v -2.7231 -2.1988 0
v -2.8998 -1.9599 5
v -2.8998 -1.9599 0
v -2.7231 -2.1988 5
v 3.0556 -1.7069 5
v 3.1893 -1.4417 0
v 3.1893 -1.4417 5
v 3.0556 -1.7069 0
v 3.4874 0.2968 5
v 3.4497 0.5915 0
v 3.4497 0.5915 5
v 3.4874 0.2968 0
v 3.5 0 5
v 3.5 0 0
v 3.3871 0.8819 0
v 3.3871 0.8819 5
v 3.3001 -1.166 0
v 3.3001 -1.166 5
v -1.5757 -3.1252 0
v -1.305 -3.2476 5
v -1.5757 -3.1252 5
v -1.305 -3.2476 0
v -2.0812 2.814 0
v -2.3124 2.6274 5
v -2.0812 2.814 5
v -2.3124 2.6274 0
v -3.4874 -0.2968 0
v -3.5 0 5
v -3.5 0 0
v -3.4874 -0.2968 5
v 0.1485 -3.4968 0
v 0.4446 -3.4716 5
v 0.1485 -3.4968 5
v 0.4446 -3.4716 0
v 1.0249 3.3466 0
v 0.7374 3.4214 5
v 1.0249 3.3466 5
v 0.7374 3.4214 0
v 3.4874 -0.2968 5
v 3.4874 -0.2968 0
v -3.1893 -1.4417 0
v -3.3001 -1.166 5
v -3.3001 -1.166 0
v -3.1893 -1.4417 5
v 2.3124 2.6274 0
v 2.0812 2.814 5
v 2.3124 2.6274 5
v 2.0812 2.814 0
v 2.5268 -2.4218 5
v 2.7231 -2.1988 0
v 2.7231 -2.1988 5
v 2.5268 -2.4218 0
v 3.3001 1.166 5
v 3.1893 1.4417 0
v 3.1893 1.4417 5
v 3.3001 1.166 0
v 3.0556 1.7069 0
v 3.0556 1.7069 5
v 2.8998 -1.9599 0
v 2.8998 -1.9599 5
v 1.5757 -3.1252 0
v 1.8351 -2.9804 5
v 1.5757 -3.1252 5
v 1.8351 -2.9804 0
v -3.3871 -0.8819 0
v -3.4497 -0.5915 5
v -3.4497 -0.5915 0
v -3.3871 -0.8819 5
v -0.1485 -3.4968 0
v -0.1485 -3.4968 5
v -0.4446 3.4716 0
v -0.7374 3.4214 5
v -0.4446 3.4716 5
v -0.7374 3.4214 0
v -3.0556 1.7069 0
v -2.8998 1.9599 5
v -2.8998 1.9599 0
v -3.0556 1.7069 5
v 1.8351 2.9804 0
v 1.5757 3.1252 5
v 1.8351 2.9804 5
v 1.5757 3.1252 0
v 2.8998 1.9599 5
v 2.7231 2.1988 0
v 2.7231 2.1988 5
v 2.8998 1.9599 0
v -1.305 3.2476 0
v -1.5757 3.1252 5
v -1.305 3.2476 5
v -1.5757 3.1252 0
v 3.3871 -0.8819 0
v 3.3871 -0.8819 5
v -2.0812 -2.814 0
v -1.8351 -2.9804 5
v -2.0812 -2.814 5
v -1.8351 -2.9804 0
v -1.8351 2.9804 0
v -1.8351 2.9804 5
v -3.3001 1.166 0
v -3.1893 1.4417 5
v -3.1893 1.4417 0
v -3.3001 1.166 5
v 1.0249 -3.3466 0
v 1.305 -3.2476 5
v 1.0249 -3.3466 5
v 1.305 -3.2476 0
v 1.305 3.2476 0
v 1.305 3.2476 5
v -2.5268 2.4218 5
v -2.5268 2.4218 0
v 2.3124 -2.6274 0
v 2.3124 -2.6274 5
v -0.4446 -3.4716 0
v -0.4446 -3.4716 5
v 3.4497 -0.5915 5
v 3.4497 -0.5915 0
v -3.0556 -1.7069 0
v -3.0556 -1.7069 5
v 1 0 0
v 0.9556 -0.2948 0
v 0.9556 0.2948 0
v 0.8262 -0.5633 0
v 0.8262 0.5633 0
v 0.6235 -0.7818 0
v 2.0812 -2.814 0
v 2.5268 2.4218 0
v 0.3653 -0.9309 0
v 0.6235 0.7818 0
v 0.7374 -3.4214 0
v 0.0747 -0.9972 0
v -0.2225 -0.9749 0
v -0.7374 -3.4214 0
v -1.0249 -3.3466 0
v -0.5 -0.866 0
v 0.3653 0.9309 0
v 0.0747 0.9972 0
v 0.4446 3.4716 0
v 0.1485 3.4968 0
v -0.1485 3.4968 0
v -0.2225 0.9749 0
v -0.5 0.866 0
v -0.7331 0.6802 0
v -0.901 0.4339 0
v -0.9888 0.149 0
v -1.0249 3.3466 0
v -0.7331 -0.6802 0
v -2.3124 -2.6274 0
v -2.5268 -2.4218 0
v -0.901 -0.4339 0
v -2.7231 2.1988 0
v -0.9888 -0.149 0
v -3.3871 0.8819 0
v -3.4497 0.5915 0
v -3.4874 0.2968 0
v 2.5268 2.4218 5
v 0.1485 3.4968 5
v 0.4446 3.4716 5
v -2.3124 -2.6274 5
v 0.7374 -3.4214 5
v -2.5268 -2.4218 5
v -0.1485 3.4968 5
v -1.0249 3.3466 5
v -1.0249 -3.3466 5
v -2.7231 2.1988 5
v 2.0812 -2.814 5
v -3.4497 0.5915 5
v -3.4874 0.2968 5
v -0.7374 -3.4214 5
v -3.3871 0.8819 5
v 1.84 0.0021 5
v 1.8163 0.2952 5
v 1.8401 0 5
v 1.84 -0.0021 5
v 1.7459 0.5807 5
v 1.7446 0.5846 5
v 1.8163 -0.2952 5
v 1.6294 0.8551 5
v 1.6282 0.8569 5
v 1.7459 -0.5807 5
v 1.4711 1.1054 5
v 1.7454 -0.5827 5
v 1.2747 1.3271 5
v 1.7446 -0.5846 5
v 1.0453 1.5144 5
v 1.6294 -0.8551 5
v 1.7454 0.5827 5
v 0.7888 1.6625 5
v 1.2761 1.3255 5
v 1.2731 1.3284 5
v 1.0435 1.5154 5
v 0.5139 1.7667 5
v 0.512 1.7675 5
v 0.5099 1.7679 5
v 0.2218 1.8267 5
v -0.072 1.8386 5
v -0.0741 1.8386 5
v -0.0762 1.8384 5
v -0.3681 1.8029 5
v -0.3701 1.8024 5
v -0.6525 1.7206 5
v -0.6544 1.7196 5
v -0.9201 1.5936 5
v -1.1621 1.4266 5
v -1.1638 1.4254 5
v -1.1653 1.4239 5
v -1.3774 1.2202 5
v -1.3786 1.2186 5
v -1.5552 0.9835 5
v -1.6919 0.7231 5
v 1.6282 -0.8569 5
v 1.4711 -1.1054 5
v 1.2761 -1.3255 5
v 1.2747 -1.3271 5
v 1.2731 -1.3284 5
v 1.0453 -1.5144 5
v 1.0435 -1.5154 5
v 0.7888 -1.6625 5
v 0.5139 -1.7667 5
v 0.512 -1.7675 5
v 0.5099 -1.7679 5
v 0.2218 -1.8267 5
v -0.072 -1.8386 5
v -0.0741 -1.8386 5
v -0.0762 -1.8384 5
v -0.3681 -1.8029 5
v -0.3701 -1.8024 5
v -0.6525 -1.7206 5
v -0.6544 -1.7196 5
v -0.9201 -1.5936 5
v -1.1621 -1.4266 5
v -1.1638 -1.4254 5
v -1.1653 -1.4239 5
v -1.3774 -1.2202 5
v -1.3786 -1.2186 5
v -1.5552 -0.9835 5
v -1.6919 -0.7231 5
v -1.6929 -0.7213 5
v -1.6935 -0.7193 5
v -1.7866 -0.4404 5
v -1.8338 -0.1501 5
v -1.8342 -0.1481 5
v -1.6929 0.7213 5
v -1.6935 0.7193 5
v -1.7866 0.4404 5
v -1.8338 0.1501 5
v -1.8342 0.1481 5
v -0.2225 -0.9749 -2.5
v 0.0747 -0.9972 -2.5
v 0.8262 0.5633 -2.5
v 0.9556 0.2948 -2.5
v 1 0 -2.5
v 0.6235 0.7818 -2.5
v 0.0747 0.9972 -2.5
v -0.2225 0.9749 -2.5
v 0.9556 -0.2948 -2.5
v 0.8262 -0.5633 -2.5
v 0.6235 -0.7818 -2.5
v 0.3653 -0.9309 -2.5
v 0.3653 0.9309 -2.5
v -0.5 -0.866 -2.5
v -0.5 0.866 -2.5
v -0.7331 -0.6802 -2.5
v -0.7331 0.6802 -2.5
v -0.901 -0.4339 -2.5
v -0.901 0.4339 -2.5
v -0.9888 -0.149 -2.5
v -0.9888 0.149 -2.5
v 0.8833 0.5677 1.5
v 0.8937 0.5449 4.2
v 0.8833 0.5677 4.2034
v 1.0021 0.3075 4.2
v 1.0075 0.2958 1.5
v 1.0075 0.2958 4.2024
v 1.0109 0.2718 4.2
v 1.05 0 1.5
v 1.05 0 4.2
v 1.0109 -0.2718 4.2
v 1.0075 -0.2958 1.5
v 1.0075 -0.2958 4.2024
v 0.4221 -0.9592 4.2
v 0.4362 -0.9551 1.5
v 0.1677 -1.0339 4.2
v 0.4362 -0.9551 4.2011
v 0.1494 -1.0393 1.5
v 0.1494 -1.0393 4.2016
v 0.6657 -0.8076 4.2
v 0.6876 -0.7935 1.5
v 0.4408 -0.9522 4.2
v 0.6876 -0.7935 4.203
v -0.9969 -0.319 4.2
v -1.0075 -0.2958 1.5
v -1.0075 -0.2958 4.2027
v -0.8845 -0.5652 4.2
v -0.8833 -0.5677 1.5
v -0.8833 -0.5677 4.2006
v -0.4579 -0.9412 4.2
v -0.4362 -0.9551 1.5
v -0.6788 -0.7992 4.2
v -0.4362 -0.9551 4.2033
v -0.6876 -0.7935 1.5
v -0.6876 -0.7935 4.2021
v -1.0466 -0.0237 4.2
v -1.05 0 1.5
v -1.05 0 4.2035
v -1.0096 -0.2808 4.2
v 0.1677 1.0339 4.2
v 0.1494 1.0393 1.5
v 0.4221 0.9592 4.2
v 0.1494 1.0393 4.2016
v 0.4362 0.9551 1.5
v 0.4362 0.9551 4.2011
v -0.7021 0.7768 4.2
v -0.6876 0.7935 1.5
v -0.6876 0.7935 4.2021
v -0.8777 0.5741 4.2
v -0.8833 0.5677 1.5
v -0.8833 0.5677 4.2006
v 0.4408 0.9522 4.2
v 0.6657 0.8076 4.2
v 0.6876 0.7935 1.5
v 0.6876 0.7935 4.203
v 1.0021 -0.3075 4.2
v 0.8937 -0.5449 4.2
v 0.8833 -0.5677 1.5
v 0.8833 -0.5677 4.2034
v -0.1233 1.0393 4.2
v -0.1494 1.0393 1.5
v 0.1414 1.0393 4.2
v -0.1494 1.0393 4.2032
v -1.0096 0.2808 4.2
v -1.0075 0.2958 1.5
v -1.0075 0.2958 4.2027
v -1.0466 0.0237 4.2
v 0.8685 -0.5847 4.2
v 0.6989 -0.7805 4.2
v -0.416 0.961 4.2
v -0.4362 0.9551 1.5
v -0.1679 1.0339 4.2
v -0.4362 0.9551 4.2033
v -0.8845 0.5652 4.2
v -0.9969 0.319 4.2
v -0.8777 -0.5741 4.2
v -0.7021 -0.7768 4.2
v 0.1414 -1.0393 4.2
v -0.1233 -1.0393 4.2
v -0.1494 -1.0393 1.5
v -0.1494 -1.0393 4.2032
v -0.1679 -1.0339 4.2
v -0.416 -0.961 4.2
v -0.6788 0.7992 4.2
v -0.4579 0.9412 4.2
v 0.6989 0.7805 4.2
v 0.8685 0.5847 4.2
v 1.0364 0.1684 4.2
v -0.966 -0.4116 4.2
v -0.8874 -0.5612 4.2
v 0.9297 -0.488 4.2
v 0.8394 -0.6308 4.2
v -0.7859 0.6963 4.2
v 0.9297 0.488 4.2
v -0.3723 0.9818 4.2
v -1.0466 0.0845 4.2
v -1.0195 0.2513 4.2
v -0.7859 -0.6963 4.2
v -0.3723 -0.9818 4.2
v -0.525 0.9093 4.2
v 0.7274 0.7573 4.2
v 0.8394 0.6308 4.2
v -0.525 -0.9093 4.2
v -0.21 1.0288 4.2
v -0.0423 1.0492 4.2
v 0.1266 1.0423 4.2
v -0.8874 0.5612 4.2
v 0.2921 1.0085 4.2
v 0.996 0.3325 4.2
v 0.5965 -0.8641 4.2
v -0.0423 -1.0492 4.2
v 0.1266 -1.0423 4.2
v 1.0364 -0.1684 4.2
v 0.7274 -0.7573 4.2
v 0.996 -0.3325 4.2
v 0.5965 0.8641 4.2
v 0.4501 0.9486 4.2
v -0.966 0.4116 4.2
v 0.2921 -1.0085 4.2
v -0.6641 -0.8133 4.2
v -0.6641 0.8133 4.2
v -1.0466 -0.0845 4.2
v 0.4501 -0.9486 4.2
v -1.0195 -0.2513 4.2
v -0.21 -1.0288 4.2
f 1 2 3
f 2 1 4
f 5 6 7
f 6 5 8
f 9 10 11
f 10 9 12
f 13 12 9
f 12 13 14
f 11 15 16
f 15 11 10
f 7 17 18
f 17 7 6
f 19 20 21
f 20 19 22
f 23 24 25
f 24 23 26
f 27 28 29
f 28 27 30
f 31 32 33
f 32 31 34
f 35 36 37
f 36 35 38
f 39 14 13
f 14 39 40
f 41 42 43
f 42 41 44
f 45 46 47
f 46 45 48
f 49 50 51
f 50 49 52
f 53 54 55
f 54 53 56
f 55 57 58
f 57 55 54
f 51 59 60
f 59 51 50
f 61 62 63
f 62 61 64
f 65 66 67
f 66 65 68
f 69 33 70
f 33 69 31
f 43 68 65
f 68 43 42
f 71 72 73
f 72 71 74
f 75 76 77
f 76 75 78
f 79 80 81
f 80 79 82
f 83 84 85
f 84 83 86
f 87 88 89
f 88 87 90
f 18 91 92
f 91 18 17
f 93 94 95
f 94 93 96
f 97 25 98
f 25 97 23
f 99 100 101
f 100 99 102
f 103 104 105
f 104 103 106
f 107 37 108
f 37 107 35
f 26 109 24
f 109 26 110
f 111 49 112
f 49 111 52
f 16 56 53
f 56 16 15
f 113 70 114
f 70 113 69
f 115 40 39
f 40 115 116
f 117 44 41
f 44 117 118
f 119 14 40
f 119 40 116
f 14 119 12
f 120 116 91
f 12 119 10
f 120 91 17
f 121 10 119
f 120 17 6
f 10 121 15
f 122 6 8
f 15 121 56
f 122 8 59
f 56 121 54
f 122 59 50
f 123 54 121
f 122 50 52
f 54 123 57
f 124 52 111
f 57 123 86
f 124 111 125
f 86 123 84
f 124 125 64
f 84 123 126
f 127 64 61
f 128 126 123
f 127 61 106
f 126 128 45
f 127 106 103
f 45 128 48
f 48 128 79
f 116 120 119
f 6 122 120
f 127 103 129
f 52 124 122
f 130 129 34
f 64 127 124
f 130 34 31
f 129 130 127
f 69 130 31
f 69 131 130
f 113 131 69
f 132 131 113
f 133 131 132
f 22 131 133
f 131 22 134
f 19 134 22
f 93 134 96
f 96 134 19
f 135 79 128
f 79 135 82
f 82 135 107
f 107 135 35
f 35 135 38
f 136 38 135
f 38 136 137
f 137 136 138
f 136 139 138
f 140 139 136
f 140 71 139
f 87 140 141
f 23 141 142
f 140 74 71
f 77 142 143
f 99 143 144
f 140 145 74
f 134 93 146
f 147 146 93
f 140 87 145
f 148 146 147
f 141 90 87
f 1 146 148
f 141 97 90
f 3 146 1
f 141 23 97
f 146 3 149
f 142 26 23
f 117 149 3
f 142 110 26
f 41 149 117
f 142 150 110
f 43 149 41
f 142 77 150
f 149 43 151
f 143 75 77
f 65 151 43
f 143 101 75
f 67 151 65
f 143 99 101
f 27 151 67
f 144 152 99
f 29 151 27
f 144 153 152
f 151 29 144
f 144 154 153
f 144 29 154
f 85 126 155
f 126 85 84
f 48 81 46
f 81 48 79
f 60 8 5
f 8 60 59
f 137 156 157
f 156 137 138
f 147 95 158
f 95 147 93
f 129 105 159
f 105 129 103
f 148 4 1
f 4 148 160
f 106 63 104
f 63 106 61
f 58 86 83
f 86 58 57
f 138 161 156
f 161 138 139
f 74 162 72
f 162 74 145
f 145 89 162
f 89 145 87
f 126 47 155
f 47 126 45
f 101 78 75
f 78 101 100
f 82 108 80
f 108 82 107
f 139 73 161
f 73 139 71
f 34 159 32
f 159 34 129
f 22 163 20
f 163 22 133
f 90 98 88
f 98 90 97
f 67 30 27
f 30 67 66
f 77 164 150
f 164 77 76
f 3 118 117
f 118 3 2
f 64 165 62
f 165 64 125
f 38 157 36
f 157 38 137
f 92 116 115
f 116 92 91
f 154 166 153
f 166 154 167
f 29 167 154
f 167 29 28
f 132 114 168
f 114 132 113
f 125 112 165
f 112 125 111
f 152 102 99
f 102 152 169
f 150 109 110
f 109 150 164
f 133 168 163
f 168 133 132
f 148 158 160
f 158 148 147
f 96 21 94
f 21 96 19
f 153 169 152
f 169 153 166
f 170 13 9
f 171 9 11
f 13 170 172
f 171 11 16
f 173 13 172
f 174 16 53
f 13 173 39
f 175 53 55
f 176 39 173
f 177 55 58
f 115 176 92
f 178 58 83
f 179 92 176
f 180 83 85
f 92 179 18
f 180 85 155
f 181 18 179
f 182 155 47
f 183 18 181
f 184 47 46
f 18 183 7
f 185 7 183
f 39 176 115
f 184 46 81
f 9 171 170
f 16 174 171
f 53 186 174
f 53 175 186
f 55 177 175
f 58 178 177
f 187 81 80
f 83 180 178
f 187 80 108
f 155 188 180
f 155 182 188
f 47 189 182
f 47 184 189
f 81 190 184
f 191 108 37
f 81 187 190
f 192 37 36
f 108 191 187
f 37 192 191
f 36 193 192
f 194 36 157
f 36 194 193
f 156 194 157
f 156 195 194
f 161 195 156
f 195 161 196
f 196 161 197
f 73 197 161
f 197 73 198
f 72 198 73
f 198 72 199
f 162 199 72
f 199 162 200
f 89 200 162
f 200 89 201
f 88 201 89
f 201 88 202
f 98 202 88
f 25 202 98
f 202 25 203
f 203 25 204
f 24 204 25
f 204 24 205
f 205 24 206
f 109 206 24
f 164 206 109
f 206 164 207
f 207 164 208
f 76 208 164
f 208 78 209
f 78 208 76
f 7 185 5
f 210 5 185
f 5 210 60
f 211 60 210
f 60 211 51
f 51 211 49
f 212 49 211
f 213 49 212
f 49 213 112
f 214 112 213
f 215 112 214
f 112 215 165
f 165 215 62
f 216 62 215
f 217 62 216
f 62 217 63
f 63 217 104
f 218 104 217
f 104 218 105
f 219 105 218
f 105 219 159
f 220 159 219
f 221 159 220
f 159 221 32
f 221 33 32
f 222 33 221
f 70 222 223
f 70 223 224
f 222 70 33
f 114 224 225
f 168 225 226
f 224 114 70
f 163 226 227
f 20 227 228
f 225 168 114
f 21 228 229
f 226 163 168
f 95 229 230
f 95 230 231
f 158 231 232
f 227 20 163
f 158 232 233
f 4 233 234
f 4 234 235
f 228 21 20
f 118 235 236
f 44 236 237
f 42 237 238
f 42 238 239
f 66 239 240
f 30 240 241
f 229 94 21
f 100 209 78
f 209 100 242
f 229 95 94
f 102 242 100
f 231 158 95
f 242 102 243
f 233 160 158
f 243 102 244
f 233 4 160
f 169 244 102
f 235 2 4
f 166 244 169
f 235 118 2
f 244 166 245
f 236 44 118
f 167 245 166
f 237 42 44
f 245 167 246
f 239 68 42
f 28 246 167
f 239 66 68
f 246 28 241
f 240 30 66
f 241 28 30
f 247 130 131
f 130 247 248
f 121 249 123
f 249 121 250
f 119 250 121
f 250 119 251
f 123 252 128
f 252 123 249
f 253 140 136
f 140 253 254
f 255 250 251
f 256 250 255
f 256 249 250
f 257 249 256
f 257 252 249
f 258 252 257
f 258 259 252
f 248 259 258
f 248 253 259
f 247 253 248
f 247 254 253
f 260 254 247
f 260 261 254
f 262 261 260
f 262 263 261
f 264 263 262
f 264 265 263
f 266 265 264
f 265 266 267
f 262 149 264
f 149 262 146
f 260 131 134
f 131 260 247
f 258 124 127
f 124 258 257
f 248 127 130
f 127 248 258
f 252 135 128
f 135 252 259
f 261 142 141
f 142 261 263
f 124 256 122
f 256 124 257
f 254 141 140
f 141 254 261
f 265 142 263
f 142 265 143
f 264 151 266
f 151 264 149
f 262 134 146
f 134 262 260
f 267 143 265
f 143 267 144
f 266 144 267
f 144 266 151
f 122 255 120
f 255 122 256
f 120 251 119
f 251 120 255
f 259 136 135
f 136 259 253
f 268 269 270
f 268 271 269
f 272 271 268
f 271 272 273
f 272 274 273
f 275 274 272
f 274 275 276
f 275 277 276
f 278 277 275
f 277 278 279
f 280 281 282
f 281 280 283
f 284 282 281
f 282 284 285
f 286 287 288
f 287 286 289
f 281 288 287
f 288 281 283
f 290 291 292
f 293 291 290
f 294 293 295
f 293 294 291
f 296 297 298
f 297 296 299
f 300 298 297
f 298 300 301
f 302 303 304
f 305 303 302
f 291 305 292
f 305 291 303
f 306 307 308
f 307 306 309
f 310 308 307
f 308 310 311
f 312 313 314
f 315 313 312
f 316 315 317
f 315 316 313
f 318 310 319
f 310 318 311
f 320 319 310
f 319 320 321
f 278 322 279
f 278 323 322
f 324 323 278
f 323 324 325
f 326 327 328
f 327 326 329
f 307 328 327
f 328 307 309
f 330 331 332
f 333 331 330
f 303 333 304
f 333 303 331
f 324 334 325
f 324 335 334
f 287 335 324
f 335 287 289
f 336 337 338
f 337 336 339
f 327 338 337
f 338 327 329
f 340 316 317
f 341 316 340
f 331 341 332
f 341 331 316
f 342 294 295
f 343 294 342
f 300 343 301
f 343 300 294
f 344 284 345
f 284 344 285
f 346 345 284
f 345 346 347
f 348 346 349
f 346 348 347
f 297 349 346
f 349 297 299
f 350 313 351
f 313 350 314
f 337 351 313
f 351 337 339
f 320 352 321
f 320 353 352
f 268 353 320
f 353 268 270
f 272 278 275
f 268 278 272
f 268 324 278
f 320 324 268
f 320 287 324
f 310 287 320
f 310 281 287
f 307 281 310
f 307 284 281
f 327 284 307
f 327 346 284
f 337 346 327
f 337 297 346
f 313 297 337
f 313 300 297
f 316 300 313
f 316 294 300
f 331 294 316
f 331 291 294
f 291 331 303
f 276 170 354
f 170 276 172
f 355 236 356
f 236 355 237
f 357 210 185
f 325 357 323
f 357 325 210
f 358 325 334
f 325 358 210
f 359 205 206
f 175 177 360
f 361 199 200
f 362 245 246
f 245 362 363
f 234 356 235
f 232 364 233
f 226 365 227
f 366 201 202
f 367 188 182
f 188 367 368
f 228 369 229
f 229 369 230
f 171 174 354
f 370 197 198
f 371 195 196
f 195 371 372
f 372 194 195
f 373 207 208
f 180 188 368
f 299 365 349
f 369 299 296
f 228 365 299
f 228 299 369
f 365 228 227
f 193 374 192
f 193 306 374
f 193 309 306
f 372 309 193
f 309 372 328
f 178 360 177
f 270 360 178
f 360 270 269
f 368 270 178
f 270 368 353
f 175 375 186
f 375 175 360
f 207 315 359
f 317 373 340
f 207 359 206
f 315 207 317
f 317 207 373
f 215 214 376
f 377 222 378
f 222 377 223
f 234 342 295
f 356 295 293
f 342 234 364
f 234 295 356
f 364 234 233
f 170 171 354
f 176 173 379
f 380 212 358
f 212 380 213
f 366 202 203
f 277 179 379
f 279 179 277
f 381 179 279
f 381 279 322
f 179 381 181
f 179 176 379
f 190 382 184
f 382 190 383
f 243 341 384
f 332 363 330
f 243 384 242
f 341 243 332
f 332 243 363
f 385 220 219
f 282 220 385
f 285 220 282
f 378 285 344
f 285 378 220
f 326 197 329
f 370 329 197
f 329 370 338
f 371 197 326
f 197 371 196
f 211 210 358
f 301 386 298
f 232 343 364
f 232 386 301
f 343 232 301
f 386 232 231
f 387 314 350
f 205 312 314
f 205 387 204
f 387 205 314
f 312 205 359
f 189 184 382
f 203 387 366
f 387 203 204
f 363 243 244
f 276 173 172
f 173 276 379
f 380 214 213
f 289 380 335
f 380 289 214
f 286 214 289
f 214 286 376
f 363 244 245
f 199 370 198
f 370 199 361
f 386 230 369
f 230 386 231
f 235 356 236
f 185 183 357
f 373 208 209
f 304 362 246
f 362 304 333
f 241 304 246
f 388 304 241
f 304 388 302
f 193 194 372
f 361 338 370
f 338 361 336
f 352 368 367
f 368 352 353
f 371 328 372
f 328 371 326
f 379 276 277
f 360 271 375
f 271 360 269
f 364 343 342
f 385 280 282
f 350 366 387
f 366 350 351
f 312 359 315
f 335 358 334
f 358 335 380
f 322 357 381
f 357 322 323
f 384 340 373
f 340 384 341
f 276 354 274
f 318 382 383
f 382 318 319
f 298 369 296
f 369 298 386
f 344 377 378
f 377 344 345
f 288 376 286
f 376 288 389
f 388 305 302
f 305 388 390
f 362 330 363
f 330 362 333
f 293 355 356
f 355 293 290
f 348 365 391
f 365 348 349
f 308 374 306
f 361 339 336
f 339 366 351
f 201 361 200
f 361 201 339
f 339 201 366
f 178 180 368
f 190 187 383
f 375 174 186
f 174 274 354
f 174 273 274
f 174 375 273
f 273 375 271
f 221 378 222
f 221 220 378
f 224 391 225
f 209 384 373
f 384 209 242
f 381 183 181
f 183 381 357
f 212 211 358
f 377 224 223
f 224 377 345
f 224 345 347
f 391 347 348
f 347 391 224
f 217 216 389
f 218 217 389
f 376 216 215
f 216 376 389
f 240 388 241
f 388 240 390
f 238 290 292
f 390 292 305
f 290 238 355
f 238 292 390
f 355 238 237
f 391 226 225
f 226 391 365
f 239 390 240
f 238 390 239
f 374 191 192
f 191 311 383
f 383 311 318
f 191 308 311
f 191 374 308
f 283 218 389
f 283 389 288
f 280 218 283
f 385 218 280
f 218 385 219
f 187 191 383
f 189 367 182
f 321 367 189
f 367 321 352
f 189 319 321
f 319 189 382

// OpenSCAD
// =====================================================================
// parts/m25_grid_insert.scad  ->  m25_grid_insert()
//
// TOLERANCE-FIRST board standoff. Instead of fixed standoff bosses at exact
// (and poorly-known) board-hole positions, the board rests on these small
// PRINTED standoffs that drop into ANY point of the baseplate's 15mm M3
// self-tap pilot grid. Because the grid is on a 15mm lattice, every real
// board hole lands within ±7.5mm of a grid point -> no exact measurement
// needed; place a standoff at the nearest grid point to each board hole.
//
//   - A locating PEG on the bottom drops into a grid pilot hole (GRID_PILOT_D).
//   - The board's own M2.5 screw self-taps into the bore on top, pulling the
//     board down onto the standoff.
//   - Print a handful (4-5) flat on the bed, zero supports.
//
// Height = STANDOFF_H so the board sits at BOARD_Z = FLOOR + STANDOFF_H.
// =====================================================================

include <params.scad>

module m25_grid_insert(h = STANDOFF_H) {
    peg_h    = 2.5;                      // locating peg length into the grid pilot
    od       = M25_BOSS_OD + 1.0;        // standoff body OD (~7mm)
    floor_t  = 1.5;                      // solid floor under the bore (keeps peg attached)
    bore_d   = max(0, h - floor_t);      // blind M2.5 bore depth from the top
    difference() {
        union() {
            // standoff body
            cylinder(h = h, d = od);
            // bottom locating peg (loose fit into a grid pilot, per FIT_CLEARANCE)
            translate([0, 0, -peg_h])
                cylinder(h = peg_h + EPS, d = GRID_PILOT_D - FIT_CLEARANCE);
        }
        // BLIND M2.5 self-tap bore on top (leaves floor_t solid bottom -> peg stays attached)
        translate([0, 0, floor_t])
            cylinder(h = bore_d + EPS, d = M25_PILOT);
        // lead-in chamfer at the bore mouth (forgiving start for the screw)
        translate([0, 0, h - CHAMFER])
            cylinder(h = CHAMFER + EPS, d1 = M25_PILOT, d2 = M25_PILOT + 2*CHAMFER);
    }
}

// ---- standalone render ----
$fa = 2; $fs = 0.3;
m25_grid_insert();
